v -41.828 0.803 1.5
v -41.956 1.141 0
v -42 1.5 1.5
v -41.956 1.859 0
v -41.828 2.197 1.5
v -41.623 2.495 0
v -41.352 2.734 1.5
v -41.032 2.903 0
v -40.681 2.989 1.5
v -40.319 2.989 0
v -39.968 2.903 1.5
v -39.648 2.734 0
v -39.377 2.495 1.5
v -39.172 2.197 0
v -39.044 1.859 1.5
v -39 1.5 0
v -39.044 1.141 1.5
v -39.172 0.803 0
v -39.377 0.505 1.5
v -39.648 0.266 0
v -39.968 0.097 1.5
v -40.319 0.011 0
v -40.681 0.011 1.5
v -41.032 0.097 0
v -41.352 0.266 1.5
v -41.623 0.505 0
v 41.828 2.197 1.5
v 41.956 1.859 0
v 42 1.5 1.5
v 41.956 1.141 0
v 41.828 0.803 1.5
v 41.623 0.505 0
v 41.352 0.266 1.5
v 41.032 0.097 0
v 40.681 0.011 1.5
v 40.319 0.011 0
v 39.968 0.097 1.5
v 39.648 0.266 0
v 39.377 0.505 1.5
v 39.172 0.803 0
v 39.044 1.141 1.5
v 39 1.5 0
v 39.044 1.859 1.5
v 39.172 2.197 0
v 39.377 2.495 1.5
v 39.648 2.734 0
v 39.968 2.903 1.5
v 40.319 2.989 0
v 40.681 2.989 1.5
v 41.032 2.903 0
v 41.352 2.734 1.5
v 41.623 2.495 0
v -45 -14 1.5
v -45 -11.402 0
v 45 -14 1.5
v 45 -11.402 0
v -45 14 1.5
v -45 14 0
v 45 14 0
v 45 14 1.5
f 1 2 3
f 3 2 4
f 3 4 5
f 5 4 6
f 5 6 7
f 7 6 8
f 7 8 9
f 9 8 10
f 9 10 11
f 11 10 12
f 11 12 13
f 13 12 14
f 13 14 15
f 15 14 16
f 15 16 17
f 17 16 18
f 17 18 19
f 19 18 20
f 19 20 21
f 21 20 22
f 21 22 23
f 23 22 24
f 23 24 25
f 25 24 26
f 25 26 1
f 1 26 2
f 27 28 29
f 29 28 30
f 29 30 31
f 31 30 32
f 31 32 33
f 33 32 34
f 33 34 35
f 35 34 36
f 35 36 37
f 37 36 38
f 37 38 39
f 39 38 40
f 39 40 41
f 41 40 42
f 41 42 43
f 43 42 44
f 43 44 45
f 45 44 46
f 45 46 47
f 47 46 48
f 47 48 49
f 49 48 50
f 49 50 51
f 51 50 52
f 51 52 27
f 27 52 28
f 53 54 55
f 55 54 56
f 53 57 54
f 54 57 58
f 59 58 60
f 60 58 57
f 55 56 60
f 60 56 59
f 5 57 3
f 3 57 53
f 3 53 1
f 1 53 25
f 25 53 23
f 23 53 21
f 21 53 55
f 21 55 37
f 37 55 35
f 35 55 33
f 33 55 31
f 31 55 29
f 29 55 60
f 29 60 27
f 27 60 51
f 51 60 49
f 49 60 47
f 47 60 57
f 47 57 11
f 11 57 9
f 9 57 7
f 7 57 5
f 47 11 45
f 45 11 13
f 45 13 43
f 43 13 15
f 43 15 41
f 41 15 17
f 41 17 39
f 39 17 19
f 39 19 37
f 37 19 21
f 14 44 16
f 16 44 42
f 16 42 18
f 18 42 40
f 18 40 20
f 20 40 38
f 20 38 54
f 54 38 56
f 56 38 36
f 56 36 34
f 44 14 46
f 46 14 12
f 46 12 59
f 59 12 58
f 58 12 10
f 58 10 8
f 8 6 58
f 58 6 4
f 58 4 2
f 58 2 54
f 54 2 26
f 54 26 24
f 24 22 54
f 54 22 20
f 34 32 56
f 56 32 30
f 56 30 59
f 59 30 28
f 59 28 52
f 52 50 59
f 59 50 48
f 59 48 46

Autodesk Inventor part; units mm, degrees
ref_plane "YZ Plane" through (0, 0, 0) normal (1, 0, 0) x (0, 1, 0)
ref_plane "XZ Plane" through (0, 0, 0) normal (0, 1, 0) x (-1, 0, 0)
ref_plane "XY Plane" through (0, 0, 0) normal (0, 0, 1) x (1, 0, 0)
sketch "Szkic1" plane through (0, 0, 0) normal (0, 0, 1) x (1, 0, 0)
  line L0 (0, -19.6) -> (0, 19.6) projected
  line L1 (-63, 0) -> (63, 0) projected
  line L2 (-45, -14) -> (45, -14)
  line L3 (45, -14) -> (45, 14)
  line L4 (45, 14) -> (-45, 14)
  line L5 (-45, 14) -> (-45, -14)
  line L6 (-45, -14) -> (45, 14) construction
  line L7 (45, -14) -> (-45, 14) construction
  point P0 (0, 0)
  dimension "d0" = 28
  dimension "d1" = 90
extrude "Wyciągnięcie proste1" add sketch "Szkic1" along normal blind 1.5
sketch "Szkic3" plane through (45, -14, 0) normal (1, 0, 0) x (0, 0, -1)
  line L0 (-1.5, 0) -> (-1.5, 28) projected
  line L1 (0, 0) -> (0, 28) projected
  line L2 (0, 0) -> (0, 28) projected
  line L3 (0, 28) -> (-1.5, 28) projected
  line L4 (-1.5, 0) -> (-1.5, 28) projected
  line L5 (0, 0) -> (-1.5, 0) projected
  line L6 (-1.5, 0) -> (0, 2.5981)
  point P0 (0, 14)
  point P1 (0, 2.5981)
  dimension "d10" = 30
extrude "Wyciągnięcie proste3" cut sketch "Szkic3" against normal blind 100 contours L6 L1 L5
sketch "Szkic4" plane through (0, 0, 0) normal (0, 0, -1) x (-1, 0, 0)
  line L0 (-45, -11.4019) -> (-45, 14) projected
  line L1 (-45, 14) -> (45, 14) projected
  point P0 (0, 0)
  point P1 (-40.5, 1.5)
  dimension "d13" = 4.5
  dimension "d14" = 12.5
hole "Otwór1" at (40.5, 1.5, 0) direction (0, 0, 1) diameter 3 depth 4
mirror "Odbij1" about plane through (0, 0, 0) normal (1, 0, 0) of "Otwór1"
properties part number "pług_część1" material "Stal"
